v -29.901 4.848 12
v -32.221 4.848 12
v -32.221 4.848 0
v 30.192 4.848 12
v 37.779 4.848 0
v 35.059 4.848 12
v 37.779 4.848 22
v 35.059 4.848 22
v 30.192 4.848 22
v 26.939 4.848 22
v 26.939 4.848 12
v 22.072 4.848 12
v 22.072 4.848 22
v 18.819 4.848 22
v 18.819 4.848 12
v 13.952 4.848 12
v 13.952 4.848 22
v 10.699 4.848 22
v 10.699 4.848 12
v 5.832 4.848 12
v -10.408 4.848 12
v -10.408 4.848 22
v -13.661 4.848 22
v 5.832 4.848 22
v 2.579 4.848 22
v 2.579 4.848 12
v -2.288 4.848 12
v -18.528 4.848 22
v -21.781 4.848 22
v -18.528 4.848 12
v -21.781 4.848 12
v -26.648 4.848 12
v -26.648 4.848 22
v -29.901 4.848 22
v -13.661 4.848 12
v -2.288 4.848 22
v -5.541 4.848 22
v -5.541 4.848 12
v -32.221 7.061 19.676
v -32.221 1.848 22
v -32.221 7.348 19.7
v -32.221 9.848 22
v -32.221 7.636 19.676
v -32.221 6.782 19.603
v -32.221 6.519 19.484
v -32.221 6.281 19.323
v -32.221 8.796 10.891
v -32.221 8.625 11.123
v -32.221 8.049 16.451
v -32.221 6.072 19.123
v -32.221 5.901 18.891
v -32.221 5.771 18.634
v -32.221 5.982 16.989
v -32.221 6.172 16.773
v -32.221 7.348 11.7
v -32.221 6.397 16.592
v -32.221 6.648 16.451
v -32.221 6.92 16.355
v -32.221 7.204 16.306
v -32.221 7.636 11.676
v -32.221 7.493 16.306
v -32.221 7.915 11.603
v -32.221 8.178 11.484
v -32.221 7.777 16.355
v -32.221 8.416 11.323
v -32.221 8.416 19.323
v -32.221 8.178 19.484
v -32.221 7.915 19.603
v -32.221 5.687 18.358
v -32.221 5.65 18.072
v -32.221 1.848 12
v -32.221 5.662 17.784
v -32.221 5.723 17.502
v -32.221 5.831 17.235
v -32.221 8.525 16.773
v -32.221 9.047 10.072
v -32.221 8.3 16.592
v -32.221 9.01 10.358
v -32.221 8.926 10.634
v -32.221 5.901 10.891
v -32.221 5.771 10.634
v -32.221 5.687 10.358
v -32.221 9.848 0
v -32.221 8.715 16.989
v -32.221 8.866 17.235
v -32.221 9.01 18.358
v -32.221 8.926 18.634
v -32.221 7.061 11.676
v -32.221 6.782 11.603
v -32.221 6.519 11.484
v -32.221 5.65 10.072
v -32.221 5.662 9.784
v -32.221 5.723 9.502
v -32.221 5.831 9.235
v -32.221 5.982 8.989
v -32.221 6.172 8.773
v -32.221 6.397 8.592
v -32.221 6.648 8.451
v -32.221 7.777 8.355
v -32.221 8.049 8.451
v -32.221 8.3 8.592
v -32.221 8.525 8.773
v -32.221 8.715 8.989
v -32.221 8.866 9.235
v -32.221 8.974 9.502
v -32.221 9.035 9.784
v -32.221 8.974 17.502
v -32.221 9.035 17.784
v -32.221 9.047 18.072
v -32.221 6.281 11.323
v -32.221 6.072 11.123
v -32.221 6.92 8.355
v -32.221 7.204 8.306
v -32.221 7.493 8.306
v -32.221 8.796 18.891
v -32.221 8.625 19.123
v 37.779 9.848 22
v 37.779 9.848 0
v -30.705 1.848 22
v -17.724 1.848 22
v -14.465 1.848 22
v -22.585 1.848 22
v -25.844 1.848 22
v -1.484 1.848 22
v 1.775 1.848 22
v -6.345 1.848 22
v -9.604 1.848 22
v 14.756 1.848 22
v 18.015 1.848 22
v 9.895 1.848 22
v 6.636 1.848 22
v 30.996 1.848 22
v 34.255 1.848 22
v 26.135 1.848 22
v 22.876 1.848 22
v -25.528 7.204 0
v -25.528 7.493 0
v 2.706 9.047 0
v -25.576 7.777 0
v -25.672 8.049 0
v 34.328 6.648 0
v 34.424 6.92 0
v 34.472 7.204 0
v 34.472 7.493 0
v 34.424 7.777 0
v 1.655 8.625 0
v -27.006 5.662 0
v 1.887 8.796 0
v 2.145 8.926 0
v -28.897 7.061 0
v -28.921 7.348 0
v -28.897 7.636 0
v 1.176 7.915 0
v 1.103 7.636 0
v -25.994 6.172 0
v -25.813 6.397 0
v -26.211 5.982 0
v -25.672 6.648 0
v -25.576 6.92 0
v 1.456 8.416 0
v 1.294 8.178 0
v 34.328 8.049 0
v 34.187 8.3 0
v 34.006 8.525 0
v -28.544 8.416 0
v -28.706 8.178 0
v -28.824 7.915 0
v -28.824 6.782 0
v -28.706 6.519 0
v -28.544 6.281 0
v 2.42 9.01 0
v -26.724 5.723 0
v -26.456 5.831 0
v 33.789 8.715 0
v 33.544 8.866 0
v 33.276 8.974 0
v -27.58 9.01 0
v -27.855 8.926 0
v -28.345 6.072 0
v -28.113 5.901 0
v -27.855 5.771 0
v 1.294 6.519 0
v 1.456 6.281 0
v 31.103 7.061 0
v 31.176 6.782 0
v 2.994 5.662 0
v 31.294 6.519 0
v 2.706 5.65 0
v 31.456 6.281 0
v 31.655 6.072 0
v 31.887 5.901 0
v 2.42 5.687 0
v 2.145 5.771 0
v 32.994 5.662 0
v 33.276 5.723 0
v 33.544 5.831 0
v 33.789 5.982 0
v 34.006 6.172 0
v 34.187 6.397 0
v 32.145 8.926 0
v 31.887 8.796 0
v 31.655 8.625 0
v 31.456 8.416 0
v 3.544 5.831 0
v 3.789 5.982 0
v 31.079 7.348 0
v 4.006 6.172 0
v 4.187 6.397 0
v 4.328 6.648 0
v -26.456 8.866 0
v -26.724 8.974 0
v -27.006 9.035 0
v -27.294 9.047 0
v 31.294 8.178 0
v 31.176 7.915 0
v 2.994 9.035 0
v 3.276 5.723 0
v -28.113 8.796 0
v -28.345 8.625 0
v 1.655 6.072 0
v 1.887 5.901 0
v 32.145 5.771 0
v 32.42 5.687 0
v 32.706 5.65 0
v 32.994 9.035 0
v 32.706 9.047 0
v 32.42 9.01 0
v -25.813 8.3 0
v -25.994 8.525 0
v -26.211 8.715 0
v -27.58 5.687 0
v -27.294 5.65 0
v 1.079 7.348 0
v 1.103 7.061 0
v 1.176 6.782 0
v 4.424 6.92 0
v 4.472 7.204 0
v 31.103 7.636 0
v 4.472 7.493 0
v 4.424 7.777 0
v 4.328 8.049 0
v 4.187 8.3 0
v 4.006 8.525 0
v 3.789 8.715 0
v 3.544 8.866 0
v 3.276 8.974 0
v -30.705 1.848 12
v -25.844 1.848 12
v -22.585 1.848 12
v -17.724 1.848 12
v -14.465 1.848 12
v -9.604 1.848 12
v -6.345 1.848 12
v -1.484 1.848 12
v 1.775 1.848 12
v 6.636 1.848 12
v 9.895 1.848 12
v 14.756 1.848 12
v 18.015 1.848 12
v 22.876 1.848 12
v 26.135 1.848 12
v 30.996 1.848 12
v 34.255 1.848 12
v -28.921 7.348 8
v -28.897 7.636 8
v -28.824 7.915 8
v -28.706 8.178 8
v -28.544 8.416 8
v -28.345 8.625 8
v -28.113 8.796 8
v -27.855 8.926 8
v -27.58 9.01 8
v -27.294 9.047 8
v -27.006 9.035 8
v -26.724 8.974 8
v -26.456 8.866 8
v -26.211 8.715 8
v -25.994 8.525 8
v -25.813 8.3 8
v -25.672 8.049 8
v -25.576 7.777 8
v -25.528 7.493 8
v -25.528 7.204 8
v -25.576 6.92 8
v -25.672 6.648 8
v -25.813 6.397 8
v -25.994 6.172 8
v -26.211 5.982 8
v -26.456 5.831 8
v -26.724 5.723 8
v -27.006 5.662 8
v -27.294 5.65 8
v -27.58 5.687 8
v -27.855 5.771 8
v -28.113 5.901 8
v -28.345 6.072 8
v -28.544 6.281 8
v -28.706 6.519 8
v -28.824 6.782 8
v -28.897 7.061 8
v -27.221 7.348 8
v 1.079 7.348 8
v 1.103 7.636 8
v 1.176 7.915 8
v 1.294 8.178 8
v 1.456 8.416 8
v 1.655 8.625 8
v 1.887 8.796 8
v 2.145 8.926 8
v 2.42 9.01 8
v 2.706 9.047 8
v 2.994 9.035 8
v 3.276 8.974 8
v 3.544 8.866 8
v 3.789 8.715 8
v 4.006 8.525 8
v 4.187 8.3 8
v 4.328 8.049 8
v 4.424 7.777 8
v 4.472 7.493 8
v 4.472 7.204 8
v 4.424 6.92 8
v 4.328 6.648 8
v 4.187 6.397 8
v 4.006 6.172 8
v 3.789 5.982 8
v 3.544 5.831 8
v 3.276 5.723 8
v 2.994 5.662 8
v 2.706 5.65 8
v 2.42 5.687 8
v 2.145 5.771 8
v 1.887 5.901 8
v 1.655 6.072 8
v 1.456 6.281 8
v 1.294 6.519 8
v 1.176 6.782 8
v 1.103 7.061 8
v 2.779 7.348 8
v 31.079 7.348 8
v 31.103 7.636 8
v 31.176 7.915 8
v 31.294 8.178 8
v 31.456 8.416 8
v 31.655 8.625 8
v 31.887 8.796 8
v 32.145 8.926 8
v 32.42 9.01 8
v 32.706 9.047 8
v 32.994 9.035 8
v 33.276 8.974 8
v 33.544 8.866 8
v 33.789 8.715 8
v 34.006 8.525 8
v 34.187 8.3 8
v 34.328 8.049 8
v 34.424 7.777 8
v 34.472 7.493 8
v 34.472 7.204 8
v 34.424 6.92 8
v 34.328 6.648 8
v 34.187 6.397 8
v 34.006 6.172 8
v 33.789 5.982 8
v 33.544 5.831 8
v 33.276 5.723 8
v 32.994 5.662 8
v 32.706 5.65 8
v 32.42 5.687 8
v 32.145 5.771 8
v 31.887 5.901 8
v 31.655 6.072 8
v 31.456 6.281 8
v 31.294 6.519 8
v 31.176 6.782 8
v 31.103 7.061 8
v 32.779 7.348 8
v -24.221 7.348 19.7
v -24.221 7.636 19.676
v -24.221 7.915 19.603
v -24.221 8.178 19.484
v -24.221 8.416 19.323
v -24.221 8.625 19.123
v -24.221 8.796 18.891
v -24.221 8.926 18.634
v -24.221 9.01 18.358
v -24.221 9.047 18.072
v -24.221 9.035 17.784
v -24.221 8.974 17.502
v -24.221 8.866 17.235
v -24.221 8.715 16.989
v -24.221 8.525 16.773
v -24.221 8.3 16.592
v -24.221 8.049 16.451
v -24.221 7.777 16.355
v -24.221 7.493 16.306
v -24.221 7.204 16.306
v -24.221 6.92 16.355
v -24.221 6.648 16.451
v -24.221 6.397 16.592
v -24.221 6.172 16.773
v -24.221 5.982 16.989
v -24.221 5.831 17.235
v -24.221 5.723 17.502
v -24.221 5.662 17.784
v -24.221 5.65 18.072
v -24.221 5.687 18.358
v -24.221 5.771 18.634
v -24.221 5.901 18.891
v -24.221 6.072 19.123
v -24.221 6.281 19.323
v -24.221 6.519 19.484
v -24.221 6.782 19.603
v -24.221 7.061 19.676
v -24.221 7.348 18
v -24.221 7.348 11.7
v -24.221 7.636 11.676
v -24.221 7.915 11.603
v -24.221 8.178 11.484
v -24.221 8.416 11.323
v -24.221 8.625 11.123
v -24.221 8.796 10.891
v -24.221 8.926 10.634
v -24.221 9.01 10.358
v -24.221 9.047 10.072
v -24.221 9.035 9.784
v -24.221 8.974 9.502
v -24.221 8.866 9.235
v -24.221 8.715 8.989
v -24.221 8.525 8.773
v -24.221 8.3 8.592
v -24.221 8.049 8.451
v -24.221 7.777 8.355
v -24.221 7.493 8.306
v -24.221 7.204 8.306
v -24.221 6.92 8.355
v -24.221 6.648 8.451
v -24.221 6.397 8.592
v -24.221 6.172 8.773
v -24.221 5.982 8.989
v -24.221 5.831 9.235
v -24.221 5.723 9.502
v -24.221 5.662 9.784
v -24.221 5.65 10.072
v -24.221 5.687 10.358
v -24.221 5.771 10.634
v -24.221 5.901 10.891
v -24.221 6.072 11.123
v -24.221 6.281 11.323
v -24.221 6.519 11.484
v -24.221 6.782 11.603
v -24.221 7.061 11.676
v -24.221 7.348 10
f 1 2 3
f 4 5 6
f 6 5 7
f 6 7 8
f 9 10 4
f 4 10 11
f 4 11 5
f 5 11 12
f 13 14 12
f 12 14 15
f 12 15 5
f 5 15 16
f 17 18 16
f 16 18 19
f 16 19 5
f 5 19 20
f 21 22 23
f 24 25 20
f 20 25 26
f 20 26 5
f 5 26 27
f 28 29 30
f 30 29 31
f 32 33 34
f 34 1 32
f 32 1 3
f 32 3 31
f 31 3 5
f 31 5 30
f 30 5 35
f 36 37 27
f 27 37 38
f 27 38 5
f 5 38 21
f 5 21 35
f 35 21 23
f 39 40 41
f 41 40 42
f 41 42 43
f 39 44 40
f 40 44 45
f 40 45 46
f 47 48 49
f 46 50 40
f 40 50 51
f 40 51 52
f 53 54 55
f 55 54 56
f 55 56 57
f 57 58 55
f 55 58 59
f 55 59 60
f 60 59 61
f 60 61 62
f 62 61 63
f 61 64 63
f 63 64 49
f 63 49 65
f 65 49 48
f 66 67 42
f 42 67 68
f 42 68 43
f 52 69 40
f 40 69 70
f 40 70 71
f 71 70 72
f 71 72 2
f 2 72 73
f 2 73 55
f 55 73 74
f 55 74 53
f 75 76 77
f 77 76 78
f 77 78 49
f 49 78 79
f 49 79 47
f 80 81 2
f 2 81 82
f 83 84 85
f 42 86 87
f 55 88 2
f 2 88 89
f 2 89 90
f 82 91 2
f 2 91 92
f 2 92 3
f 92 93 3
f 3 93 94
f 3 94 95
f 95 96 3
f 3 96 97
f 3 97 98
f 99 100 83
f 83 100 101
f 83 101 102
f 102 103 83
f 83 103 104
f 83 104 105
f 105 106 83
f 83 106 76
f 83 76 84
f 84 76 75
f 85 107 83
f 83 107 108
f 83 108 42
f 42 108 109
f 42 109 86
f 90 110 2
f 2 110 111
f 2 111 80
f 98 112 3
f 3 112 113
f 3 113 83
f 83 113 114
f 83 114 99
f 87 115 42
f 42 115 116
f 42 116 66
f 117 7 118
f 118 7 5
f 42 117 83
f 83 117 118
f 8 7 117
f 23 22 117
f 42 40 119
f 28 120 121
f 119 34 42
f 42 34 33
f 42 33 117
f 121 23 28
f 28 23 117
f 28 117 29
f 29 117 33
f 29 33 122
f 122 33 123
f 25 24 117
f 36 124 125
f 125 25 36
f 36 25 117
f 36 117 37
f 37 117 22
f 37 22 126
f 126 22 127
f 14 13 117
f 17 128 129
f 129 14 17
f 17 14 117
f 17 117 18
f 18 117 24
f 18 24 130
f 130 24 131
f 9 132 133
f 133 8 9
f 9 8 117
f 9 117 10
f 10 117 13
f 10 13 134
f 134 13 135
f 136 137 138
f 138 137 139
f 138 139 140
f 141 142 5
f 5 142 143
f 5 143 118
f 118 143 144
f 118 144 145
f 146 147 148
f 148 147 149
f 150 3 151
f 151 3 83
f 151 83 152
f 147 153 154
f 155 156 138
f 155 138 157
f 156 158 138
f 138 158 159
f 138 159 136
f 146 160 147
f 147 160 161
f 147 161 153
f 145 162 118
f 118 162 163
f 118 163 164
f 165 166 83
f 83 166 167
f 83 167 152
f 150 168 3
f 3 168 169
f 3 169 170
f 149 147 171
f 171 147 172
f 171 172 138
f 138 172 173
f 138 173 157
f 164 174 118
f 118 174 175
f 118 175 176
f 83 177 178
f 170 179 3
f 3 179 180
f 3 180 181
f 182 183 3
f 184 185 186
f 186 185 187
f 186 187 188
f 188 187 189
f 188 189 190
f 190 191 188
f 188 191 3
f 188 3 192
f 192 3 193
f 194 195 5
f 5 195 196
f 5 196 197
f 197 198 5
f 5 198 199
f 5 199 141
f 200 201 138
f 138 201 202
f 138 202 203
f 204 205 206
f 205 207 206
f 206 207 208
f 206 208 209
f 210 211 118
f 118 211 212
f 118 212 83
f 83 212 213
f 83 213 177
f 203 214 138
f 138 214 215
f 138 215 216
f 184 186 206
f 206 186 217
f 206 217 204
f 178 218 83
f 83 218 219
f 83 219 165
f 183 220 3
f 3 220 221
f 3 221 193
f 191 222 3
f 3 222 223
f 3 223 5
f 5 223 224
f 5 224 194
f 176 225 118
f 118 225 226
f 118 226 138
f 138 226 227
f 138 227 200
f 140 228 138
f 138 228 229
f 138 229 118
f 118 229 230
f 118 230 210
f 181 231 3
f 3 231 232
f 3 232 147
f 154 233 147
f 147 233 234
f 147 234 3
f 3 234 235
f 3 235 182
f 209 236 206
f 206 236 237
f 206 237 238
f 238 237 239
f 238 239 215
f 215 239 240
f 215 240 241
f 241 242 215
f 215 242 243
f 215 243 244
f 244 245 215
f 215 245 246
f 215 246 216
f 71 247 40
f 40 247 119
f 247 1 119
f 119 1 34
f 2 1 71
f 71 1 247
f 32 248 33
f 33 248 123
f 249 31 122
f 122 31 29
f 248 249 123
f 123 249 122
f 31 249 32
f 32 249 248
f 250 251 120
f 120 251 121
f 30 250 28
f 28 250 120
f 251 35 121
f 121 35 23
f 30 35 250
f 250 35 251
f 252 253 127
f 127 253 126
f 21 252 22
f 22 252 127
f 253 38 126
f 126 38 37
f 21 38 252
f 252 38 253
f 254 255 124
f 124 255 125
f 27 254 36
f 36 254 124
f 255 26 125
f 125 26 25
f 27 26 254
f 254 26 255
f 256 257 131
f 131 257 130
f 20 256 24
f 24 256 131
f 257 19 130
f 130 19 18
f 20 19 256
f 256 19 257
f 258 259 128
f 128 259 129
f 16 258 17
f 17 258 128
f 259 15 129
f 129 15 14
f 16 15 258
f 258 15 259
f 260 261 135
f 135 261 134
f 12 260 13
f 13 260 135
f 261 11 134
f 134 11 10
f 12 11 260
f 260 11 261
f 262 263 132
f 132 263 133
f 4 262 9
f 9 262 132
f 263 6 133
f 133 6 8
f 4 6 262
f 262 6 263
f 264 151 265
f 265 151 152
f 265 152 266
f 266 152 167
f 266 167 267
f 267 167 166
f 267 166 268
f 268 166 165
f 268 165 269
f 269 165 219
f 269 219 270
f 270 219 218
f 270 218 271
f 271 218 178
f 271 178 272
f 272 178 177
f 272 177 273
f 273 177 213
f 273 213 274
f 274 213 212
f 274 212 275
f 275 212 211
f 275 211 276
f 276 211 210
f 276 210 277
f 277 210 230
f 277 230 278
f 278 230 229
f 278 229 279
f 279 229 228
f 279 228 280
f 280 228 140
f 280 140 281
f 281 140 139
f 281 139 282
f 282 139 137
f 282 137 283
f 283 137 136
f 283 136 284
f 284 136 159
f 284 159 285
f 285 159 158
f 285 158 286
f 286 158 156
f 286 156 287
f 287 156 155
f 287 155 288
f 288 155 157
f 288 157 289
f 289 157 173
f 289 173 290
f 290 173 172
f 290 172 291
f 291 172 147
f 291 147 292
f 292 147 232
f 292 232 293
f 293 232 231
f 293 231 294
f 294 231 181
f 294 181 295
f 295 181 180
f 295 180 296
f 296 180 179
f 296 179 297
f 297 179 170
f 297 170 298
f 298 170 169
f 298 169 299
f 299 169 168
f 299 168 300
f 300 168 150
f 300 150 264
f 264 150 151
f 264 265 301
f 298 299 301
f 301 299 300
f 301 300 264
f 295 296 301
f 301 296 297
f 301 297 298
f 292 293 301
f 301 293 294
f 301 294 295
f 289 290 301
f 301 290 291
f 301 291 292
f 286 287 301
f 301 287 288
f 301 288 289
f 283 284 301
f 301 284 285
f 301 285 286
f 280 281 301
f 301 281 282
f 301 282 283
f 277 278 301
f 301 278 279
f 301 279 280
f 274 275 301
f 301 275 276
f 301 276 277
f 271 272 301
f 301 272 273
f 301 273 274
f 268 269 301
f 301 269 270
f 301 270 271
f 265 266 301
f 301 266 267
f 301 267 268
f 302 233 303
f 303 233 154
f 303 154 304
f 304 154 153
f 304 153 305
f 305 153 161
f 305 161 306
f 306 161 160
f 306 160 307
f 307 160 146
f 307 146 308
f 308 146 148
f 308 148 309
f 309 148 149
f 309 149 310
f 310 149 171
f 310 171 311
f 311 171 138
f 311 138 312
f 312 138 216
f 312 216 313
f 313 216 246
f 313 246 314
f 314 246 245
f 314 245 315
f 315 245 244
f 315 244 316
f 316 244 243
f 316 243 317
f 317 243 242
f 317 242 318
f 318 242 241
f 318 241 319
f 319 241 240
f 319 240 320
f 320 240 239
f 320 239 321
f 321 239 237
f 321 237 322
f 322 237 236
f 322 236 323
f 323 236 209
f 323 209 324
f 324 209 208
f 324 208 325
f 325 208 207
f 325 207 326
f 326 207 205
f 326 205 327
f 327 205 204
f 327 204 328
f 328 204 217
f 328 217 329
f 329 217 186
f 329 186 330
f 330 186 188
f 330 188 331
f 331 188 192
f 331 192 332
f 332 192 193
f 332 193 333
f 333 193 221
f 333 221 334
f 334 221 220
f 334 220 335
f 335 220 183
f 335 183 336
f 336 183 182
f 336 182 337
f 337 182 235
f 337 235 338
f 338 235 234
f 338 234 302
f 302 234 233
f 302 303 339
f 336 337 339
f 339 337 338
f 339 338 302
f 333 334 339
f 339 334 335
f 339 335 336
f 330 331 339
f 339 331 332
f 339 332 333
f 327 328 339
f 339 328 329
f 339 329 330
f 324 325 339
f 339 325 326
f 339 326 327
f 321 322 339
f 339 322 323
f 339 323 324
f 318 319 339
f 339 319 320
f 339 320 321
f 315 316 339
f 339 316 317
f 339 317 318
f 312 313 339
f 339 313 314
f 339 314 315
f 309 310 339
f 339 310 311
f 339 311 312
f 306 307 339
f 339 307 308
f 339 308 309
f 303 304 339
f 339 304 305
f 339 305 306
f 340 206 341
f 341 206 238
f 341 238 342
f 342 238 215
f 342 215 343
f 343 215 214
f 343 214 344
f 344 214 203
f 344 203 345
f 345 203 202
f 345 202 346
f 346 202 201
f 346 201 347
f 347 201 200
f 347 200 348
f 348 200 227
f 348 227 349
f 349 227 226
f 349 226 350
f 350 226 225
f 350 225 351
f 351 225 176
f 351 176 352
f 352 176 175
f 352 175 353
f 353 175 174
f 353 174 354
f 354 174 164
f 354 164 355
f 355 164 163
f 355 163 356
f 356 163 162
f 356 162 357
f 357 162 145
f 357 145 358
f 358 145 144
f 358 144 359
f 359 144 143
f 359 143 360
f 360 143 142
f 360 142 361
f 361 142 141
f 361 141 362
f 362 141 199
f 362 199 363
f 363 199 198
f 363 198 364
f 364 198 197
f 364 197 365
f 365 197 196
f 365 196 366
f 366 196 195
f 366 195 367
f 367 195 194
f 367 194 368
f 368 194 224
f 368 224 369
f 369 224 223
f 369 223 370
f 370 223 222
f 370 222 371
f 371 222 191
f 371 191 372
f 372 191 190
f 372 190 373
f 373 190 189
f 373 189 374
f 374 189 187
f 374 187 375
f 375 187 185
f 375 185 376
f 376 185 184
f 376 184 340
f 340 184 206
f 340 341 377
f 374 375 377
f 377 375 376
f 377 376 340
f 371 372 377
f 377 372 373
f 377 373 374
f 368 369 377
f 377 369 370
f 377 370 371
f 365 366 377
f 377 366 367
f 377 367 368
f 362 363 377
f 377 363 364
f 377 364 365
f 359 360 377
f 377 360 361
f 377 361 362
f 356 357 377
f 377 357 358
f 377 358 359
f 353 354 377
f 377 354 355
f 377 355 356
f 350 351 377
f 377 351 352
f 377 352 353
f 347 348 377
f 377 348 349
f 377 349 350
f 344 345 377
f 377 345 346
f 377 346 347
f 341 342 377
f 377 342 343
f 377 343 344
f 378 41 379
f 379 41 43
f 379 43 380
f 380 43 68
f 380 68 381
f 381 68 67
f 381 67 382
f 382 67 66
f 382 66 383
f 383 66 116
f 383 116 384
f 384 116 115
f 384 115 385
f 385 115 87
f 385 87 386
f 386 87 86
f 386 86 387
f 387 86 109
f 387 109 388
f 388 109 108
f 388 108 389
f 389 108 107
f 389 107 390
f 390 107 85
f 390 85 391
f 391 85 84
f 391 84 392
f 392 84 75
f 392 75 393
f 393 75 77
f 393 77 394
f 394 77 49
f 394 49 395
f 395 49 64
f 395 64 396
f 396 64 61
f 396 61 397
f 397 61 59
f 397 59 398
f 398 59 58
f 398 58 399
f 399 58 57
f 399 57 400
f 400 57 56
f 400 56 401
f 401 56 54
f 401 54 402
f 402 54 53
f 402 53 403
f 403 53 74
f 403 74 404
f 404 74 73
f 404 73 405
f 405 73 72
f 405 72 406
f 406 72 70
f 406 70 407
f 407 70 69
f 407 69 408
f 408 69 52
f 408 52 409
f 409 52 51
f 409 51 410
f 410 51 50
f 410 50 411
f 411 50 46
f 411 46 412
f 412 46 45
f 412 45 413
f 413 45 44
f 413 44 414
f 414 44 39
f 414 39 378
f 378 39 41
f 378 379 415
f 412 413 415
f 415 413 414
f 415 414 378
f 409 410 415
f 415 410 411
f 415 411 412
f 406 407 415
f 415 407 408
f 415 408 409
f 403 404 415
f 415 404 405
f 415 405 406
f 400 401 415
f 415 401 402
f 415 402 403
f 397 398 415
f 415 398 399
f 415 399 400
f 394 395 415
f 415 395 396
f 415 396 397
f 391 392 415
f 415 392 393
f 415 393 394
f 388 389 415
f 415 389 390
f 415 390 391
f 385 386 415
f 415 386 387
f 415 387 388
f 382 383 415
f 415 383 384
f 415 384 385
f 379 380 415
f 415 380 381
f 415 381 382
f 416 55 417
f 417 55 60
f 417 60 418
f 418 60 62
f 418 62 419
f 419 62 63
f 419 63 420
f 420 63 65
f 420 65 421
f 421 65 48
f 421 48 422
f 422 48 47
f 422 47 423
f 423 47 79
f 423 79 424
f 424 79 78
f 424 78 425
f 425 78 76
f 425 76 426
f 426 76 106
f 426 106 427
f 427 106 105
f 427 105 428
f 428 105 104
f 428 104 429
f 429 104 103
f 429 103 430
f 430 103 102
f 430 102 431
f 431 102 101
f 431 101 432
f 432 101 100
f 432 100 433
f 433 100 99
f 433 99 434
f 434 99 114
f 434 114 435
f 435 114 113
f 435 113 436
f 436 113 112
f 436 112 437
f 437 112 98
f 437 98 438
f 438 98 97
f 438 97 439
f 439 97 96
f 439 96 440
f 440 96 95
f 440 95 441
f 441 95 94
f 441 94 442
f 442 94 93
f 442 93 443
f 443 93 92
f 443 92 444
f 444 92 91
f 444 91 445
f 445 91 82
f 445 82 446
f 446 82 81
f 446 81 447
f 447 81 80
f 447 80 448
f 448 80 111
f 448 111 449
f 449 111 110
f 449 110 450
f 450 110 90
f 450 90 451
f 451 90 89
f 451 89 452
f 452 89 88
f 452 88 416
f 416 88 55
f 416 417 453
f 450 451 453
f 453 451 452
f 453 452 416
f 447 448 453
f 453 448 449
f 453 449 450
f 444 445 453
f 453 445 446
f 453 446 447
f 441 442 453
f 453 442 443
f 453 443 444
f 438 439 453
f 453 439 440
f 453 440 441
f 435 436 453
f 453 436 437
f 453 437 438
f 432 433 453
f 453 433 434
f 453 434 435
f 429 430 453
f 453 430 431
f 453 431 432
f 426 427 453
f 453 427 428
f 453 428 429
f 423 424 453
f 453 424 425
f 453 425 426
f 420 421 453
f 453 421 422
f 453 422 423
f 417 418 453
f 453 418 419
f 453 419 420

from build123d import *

# Parameters (mm, degrees)
SKETCH_1_W          = 70
SKETCH_1_H          = 5
EXTRUDE_1_DEPTH     = 22
EXTRUDE_2_DEPTH     = 10
SKETCH_3_R          = 1.7
CUT_EXTRUDE_1_DEPTH = 8
SKETCH_5_R          = 1.7
CUT_EXTRUDE_2_DEPTH = 8


with BuildPart() as part:
    # 草圖1 → 填料-伸長1 (new body)
    with BuildSketch(Plane.XY):
        with Locations((2.778517987, 7.348484848)):
            Rectangle(SKETCH_1_W, SKETCH_1_H)
    extrude(amount=EXTRUDE_1_DEPTH)

    # 草圖2 → 填料-伸長2 (add)
    with BuildSketch(Plane.XY.offset(22)):
        Polygon((-32.221482013, 1.848484848), (-30.705054647, 1.848484848), (-29.90120707, 4.848484848), (-32.221482013, 4.848484848), align=None)
        Polygon((-25.84420707, 1.848484848), (-22.585054647, 1.848484848), (-21.78120707, 4.848484848), (-26.648054647, 4.848484848), align=None)
        Polygon((-18.528054647, 4.848484848), (-17.72420707, 1.848484848), (-14.465054647, 1.848484848), (-13.66120707, 4.848484848), align=None)
        Polygon((-10.408054647, 4.848484848), (-9.60420707, 1.848484848), (-6.345054647, 1.848484848), (-5.54120707, 4.848484848), align=None)
        Polygon((-2.288054647, 4.848484848), (-1.48420707, 1.848484848), (1.774945353, 1.848484848), (2.57879293, 4.848484848), align=None)
        Polygon((5.831945353, 4.848484848), (6.63579293, 1.848484848), (9.894945353, 1.848484848), (10.69879293, 4.848484848), align=None)
        Polygon((13.951945353, 4.848484848), (14.75579293, 1.848484848), (18.014945353, 1.848484848), (18.81879293, 4.848484848), align=None)
        Polygon((22.071945353, 4.848484848), (22.87579293, 1.848484848), (26.134945353, 1.848484848), (26.93879293, 4.848484848), align=None)
        Polygon((30.191945353, 4.848484848), (30.99579293, 1.848484848), (34.254945353, 1.848484848), (35.05879293, 4.848484848), align=None)
    extrude(amount=-EXTRUDE_2_DEPTH)

    # 草圖3 → 除料-伸長1 (cut)
    with BuildSketch(Plane(origin=(0, 0, 0), x_dir=(-1, 0, 0), z_dir=(0, 0, -1))):
        with Locations((-32.778517987, 7.348484848)):
            Circle(SKETCH_3_R)
        with Locations((-2.778517987, 7.348484848)):
            Circle(SKETCH_3_R)
        with Locations((27.221482013, 7.348484848)):
            Circle(SKETCH_3_R)
    extrude(amount=-CUT_EXTRUDE_1_DEPTH, mode=Mode.SUBTRACT)

    # 草圖5 → 除料-伸長2 (cut)
    with BuildSketch(Plane.ZY.offset(32.221482013)):
        with Locations((10, 7.348484848)):
            Circle(SKETCH_5_R)
        with Locations((18, 7.348484848)):
            Circle(SKETCH_5_R)
    extrude(amount=-CUT_EXTRUDE_2_DEPTH, mode=Mode.SUBTRACT)


solid = part.part
